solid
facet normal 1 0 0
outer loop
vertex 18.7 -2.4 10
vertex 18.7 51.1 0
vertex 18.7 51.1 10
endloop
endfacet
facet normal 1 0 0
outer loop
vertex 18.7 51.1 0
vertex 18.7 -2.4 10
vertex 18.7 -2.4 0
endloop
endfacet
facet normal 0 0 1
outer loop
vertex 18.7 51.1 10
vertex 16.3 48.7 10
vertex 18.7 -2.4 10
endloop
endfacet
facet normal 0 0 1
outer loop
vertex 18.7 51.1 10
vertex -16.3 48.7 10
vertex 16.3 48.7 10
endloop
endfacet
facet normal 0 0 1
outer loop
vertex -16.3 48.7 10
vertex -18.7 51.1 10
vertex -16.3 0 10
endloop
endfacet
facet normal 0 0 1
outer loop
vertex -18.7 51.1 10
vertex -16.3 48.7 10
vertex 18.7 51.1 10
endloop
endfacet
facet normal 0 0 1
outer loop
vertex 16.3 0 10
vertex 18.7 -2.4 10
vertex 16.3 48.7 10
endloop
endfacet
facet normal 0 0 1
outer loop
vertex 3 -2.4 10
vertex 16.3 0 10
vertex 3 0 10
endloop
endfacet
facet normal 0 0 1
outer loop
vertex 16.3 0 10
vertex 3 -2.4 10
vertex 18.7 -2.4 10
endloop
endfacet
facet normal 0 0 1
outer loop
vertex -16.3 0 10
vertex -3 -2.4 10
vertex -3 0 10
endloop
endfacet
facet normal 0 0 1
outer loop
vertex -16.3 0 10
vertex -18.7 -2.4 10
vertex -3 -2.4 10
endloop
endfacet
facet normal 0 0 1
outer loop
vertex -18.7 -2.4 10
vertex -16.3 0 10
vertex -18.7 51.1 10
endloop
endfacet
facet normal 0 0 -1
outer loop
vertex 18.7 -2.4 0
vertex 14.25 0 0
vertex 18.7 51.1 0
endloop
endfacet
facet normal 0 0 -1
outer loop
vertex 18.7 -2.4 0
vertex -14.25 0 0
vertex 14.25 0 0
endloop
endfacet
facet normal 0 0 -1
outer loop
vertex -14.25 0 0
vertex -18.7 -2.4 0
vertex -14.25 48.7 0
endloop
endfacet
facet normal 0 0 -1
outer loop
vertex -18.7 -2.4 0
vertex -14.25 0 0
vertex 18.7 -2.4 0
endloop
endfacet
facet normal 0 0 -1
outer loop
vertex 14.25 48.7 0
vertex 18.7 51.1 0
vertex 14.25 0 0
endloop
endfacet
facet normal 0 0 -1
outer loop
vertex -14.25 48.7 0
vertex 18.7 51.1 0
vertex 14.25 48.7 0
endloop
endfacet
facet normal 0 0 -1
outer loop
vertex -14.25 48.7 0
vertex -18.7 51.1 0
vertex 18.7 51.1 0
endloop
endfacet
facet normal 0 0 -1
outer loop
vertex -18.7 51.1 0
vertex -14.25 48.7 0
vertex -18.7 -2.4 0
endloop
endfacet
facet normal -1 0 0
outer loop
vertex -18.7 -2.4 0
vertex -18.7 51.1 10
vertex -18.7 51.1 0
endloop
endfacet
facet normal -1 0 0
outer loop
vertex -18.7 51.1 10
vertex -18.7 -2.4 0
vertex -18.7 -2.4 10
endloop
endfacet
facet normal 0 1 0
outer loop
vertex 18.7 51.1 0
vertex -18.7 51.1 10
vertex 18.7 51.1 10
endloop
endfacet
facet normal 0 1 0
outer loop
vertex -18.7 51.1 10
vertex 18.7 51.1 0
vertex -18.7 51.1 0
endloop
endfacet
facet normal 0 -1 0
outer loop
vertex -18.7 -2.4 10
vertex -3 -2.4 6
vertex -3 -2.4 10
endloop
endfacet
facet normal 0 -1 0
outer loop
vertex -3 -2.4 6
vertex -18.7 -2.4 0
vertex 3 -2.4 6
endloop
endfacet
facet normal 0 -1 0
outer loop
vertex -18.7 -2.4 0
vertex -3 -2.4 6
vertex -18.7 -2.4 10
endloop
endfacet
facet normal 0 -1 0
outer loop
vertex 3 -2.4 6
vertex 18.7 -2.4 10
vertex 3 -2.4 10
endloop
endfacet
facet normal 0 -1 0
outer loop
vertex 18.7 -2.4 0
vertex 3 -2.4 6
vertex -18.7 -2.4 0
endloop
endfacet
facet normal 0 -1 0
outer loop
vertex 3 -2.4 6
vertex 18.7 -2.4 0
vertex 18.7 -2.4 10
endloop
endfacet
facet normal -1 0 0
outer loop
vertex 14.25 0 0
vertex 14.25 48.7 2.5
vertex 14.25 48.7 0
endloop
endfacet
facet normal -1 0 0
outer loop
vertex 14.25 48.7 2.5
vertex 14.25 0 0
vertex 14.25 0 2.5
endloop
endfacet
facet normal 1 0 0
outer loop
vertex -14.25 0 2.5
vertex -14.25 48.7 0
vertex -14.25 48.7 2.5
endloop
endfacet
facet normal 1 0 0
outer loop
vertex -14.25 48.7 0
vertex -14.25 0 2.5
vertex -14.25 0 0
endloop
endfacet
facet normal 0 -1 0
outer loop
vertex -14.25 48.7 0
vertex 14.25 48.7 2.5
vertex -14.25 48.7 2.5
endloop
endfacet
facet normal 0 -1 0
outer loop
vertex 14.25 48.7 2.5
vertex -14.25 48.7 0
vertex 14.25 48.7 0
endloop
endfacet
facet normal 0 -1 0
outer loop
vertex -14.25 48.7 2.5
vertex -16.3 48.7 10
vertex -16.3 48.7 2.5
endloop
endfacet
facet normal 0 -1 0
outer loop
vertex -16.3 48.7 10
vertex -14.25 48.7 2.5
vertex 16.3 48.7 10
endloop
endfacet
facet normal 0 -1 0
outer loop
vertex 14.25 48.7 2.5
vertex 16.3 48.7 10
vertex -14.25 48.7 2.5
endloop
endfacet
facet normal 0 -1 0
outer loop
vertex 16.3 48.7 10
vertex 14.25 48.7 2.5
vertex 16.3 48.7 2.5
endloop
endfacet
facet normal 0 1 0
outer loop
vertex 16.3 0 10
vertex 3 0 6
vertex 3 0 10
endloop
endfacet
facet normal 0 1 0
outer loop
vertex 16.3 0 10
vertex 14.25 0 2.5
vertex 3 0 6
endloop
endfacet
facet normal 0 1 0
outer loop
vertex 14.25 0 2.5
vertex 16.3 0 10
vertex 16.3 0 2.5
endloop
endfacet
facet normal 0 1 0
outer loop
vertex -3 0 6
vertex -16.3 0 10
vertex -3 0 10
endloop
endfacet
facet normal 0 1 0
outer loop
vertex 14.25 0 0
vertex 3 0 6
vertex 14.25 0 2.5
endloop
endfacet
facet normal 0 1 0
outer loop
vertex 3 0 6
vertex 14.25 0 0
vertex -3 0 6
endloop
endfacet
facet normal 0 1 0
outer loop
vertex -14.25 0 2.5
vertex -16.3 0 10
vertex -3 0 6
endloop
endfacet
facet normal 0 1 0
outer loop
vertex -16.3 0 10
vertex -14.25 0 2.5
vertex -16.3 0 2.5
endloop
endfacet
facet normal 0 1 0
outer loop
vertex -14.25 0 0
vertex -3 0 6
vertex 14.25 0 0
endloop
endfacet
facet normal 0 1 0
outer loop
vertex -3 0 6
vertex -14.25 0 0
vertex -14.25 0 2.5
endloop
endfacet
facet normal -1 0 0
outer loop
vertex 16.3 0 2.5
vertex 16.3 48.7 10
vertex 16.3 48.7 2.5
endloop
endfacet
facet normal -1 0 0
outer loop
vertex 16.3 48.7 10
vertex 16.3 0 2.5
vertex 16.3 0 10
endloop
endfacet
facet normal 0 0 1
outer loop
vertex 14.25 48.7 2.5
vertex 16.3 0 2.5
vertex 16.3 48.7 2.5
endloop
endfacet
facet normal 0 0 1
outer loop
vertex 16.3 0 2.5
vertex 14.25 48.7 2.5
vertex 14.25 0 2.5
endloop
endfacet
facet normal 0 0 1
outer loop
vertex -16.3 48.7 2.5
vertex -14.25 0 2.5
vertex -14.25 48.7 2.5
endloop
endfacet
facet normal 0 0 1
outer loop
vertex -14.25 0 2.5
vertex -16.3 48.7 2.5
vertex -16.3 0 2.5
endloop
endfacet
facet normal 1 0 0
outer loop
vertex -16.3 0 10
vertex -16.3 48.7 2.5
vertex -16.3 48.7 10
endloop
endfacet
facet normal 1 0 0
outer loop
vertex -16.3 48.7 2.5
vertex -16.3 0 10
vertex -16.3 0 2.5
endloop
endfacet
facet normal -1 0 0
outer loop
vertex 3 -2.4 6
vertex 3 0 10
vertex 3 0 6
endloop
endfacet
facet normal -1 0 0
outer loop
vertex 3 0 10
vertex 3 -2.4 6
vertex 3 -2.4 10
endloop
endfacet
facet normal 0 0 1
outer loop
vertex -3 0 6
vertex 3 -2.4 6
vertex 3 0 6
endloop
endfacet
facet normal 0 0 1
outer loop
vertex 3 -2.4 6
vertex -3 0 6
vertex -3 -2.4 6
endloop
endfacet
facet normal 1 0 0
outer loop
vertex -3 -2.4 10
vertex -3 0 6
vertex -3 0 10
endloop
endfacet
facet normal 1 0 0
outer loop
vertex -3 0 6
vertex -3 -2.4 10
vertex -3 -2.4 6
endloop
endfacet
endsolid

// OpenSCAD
// Print this FIRST (10 min). One pocket of the carriage holder, short: the
// cartridge's ears should rest on the two ledges with the body hanging free
// and the contact face against the back wall. If it doesn't fit, change the
// cart_* values in common.scad (they come from a 3D scan, not HP) and
// re-render everything.

include <common.scad>

pw = cart_ear_w + cart_fit;     // across the ears
bw = cart_w + cart_fit;         // body below the ears
d  = cart_d + cart_fit;
t  = 2.4;

difference() {
    translate([-pw / 2 - t, -t, 0]) cube([pw + 2 * t, d + 2 * t, 10]);
    // body opening, all the way through
    translate([-bw / 2, 0, -1]) cube([bw, d, 12]);
    // ear pocket above the 2.5 mm ledges
    translate([-pw / 2, 0, 2.5]) cube([pw, d, 10]);
    // which-way-round notch on the contact (back) side
    translate([-3, -t - 1, 6]) cube([6, t + 2, 5]);
}
